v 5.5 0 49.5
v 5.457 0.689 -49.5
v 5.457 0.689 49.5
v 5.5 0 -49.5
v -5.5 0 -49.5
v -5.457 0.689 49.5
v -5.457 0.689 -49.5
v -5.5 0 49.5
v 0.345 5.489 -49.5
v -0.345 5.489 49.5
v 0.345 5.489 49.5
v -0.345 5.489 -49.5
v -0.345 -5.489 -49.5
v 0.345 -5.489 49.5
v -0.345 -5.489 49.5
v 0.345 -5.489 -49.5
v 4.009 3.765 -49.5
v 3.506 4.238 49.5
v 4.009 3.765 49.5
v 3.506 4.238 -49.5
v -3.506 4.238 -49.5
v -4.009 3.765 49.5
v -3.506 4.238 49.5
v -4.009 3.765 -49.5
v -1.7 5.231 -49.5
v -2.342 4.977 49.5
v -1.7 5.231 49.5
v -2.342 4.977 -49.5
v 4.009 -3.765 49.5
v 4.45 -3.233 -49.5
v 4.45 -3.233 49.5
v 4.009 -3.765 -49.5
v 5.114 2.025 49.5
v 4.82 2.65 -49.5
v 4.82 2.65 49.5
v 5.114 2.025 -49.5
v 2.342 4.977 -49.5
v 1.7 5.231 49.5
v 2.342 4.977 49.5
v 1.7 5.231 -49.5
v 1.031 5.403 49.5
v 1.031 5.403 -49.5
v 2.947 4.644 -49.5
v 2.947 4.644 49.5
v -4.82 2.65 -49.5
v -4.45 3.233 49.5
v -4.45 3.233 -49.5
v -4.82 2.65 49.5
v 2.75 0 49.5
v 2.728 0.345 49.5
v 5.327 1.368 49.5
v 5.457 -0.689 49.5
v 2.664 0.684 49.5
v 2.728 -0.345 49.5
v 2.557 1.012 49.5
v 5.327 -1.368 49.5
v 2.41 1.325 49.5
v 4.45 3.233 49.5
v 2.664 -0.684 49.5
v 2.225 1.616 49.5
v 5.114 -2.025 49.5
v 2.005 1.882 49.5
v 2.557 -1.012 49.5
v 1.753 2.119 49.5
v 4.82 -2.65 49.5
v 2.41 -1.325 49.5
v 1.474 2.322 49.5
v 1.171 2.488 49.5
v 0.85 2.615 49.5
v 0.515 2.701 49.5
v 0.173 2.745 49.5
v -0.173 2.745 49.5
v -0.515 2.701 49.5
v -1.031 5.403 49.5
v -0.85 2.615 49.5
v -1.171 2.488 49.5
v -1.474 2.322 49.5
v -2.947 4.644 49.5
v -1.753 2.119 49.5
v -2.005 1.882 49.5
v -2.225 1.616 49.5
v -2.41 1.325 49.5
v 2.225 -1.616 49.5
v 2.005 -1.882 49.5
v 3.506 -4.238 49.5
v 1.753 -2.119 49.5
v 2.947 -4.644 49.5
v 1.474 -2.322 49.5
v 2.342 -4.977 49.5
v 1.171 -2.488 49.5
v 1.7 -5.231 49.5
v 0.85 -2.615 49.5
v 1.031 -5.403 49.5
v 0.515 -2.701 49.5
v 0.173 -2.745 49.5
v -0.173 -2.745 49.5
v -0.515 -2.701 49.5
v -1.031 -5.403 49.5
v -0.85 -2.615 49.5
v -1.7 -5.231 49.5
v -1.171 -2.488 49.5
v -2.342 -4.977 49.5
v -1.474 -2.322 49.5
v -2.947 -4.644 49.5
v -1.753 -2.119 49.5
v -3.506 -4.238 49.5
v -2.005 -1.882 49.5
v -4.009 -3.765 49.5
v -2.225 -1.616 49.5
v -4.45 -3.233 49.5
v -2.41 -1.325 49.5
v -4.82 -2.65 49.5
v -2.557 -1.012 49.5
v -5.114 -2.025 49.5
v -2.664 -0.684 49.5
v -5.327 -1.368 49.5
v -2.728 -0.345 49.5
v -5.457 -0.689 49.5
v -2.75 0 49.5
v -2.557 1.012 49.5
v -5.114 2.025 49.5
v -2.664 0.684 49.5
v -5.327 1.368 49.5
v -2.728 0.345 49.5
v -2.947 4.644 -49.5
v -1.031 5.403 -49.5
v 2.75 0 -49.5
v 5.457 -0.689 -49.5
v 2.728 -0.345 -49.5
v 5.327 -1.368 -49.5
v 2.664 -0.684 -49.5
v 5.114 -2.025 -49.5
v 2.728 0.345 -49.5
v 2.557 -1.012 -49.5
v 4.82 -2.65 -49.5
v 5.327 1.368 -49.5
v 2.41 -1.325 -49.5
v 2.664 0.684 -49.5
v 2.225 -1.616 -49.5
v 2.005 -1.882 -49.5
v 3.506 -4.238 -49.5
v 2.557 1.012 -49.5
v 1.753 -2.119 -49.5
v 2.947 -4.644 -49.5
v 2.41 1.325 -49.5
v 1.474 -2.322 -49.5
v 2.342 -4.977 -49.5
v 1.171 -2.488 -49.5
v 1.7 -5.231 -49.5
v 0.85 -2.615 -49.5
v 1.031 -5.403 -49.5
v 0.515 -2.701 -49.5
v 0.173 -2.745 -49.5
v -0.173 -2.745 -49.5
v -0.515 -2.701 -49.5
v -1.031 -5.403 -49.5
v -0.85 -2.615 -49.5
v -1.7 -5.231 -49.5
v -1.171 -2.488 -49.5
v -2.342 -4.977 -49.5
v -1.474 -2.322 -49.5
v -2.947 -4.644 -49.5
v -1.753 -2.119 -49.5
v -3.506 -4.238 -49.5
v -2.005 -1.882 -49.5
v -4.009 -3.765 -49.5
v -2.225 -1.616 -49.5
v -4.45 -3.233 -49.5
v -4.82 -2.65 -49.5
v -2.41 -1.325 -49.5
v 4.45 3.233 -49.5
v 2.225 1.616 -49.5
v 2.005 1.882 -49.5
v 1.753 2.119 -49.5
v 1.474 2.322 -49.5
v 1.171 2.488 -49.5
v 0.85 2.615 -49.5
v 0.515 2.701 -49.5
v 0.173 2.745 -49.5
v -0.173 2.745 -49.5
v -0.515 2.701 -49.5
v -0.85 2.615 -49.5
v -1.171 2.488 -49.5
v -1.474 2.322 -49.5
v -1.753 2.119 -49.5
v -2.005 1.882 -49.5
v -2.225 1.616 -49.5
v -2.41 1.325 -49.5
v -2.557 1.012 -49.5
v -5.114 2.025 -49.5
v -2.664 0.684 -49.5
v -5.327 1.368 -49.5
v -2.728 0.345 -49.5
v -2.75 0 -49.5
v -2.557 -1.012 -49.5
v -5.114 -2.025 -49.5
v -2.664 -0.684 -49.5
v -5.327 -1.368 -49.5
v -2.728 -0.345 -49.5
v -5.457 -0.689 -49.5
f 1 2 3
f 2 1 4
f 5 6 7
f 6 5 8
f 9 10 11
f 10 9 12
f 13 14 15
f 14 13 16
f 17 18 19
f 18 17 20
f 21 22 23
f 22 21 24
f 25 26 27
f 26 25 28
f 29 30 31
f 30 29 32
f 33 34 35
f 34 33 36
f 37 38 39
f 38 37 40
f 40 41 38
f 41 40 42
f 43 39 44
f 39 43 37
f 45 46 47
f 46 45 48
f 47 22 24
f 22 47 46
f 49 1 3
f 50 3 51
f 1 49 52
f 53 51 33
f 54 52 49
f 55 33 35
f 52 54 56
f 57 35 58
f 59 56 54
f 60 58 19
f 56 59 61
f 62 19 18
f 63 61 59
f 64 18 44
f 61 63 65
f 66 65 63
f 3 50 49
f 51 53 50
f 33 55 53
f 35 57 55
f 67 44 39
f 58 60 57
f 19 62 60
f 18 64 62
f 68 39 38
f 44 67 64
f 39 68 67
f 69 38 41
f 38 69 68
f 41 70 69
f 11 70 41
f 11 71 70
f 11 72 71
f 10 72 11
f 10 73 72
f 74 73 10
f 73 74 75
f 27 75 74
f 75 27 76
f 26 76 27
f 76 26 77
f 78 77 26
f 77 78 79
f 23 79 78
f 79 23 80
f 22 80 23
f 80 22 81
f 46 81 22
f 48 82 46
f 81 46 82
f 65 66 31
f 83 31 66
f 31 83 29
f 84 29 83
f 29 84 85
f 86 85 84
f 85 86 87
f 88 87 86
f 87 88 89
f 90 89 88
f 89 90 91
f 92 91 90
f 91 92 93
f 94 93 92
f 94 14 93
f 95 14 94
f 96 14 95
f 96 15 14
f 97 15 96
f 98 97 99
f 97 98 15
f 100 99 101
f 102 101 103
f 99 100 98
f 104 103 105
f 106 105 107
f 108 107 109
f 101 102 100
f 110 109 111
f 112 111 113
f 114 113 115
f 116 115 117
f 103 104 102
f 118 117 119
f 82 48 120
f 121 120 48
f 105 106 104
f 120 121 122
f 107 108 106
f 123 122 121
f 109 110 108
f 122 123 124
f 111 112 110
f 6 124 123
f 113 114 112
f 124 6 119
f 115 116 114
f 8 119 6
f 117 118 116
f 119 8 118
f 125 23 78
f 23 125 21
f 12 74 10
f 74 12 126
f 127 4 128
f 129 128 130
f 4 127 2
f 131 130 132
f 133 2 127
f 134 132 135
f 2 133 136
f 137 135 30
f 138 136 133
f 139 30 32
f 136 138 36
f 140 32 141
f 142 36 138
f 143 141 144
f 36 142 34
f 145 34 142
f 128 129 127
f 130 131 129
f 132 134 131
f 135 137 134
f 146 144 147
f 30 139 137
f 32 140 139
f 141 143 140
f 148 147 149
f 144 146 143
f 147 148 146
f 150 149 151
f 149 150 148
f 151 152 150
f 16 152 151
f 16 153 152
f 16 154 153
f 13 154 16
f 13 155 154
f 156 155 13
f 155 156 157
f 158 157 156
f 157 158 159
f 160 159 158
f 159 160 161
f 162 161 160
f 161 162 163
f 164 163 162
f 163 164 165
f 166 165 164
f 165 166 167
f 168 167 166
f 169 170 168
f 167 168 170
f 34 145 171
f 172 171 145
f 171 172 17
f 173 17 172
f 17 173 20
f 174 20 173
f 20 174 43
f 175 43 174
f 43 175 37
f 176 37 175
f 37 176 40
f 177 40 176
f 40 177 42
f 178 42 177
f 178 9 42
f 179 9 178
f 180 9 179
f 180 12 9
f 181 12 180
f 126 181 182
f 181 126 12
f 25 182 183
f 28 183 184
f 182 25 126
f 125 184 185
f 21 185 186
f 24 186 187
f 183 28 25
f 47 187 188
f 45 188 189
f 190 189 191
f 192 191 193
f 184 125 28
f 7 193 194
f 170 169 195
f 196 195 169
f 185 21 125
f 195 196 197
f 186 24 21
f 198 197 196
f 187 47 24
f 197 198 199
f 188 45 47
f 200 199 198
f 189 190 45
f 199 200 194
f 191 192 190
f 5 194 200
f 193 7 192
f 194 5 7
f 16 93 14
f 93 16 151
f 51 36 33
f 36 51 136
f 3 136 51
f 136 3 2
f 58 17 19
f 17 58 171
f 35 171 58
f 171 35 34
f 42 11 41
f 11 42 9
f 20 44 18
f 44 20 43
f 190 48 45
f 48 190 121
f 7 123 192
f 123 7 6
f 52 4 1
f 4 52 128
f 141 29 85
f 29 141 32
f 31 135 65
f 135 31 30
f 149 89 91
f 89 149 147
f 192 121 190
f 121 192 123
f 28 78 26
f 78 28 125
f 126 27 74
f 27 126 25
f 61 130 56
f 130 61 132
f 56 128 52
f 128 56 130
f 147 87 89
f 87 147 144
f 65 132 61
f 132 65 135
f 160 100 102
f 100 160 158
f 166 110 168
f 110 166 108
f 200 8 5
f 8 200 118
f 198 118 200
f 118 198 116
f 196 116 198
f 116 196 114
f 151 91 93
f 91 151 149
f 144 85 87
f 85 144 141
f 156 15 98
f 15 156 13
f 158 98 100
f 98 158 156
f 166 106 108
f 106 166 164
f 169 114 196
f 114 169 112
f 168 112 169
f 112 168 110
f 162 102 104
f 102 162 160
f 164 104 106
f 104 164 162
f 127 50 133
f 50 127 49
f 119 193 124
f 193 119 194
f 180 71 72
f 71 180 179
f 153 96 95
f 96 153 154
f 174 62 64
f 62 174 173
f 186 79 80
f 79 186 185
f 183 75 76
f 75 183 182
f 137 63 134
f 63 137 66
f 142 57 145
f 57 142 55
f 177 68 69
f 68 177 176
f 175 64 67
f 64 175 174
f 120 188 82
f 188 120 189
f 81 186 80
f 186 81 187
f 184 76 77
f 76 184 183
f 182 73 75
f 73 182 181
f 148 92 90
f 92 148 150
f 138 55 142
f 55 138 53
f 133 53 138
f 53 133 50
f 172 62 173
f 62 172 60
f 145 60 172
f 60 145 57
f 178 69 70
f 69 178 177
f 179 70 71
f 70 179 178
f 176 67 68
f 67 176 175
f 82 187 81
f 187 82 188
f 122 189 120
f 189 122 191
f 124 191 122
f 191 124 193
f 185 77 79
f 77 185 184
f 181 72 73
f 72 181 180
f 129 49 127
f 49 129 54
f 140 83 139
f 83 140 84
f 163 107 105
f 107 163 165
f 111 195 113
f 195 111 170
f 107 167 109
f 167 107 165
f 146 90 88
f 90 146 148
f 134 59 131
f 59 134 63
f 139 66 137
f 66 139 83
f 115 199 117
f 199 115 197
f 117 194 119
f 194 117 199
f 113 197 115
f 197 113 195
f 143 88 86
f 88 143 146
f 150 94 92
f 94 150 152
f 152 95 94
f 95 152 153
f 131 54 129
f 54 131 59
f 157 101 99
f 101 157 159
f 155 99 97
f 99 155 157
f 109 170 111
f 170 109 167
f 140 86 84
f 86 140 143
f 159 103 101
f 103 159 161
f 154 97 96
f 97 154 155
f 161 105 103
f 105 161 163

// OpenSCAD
$fn = 50;


difference() {
	union() {
		translate(v = [0, 0, -49.5000000000]) {
			cylinder(h = 99, r = 5.5000000000);
		}
	}
	union() {
		translate(v = [0, 0, -100.0000000000]) {
			cylinder(h = 200, r = 2.7500000000);
		}
	}
}
